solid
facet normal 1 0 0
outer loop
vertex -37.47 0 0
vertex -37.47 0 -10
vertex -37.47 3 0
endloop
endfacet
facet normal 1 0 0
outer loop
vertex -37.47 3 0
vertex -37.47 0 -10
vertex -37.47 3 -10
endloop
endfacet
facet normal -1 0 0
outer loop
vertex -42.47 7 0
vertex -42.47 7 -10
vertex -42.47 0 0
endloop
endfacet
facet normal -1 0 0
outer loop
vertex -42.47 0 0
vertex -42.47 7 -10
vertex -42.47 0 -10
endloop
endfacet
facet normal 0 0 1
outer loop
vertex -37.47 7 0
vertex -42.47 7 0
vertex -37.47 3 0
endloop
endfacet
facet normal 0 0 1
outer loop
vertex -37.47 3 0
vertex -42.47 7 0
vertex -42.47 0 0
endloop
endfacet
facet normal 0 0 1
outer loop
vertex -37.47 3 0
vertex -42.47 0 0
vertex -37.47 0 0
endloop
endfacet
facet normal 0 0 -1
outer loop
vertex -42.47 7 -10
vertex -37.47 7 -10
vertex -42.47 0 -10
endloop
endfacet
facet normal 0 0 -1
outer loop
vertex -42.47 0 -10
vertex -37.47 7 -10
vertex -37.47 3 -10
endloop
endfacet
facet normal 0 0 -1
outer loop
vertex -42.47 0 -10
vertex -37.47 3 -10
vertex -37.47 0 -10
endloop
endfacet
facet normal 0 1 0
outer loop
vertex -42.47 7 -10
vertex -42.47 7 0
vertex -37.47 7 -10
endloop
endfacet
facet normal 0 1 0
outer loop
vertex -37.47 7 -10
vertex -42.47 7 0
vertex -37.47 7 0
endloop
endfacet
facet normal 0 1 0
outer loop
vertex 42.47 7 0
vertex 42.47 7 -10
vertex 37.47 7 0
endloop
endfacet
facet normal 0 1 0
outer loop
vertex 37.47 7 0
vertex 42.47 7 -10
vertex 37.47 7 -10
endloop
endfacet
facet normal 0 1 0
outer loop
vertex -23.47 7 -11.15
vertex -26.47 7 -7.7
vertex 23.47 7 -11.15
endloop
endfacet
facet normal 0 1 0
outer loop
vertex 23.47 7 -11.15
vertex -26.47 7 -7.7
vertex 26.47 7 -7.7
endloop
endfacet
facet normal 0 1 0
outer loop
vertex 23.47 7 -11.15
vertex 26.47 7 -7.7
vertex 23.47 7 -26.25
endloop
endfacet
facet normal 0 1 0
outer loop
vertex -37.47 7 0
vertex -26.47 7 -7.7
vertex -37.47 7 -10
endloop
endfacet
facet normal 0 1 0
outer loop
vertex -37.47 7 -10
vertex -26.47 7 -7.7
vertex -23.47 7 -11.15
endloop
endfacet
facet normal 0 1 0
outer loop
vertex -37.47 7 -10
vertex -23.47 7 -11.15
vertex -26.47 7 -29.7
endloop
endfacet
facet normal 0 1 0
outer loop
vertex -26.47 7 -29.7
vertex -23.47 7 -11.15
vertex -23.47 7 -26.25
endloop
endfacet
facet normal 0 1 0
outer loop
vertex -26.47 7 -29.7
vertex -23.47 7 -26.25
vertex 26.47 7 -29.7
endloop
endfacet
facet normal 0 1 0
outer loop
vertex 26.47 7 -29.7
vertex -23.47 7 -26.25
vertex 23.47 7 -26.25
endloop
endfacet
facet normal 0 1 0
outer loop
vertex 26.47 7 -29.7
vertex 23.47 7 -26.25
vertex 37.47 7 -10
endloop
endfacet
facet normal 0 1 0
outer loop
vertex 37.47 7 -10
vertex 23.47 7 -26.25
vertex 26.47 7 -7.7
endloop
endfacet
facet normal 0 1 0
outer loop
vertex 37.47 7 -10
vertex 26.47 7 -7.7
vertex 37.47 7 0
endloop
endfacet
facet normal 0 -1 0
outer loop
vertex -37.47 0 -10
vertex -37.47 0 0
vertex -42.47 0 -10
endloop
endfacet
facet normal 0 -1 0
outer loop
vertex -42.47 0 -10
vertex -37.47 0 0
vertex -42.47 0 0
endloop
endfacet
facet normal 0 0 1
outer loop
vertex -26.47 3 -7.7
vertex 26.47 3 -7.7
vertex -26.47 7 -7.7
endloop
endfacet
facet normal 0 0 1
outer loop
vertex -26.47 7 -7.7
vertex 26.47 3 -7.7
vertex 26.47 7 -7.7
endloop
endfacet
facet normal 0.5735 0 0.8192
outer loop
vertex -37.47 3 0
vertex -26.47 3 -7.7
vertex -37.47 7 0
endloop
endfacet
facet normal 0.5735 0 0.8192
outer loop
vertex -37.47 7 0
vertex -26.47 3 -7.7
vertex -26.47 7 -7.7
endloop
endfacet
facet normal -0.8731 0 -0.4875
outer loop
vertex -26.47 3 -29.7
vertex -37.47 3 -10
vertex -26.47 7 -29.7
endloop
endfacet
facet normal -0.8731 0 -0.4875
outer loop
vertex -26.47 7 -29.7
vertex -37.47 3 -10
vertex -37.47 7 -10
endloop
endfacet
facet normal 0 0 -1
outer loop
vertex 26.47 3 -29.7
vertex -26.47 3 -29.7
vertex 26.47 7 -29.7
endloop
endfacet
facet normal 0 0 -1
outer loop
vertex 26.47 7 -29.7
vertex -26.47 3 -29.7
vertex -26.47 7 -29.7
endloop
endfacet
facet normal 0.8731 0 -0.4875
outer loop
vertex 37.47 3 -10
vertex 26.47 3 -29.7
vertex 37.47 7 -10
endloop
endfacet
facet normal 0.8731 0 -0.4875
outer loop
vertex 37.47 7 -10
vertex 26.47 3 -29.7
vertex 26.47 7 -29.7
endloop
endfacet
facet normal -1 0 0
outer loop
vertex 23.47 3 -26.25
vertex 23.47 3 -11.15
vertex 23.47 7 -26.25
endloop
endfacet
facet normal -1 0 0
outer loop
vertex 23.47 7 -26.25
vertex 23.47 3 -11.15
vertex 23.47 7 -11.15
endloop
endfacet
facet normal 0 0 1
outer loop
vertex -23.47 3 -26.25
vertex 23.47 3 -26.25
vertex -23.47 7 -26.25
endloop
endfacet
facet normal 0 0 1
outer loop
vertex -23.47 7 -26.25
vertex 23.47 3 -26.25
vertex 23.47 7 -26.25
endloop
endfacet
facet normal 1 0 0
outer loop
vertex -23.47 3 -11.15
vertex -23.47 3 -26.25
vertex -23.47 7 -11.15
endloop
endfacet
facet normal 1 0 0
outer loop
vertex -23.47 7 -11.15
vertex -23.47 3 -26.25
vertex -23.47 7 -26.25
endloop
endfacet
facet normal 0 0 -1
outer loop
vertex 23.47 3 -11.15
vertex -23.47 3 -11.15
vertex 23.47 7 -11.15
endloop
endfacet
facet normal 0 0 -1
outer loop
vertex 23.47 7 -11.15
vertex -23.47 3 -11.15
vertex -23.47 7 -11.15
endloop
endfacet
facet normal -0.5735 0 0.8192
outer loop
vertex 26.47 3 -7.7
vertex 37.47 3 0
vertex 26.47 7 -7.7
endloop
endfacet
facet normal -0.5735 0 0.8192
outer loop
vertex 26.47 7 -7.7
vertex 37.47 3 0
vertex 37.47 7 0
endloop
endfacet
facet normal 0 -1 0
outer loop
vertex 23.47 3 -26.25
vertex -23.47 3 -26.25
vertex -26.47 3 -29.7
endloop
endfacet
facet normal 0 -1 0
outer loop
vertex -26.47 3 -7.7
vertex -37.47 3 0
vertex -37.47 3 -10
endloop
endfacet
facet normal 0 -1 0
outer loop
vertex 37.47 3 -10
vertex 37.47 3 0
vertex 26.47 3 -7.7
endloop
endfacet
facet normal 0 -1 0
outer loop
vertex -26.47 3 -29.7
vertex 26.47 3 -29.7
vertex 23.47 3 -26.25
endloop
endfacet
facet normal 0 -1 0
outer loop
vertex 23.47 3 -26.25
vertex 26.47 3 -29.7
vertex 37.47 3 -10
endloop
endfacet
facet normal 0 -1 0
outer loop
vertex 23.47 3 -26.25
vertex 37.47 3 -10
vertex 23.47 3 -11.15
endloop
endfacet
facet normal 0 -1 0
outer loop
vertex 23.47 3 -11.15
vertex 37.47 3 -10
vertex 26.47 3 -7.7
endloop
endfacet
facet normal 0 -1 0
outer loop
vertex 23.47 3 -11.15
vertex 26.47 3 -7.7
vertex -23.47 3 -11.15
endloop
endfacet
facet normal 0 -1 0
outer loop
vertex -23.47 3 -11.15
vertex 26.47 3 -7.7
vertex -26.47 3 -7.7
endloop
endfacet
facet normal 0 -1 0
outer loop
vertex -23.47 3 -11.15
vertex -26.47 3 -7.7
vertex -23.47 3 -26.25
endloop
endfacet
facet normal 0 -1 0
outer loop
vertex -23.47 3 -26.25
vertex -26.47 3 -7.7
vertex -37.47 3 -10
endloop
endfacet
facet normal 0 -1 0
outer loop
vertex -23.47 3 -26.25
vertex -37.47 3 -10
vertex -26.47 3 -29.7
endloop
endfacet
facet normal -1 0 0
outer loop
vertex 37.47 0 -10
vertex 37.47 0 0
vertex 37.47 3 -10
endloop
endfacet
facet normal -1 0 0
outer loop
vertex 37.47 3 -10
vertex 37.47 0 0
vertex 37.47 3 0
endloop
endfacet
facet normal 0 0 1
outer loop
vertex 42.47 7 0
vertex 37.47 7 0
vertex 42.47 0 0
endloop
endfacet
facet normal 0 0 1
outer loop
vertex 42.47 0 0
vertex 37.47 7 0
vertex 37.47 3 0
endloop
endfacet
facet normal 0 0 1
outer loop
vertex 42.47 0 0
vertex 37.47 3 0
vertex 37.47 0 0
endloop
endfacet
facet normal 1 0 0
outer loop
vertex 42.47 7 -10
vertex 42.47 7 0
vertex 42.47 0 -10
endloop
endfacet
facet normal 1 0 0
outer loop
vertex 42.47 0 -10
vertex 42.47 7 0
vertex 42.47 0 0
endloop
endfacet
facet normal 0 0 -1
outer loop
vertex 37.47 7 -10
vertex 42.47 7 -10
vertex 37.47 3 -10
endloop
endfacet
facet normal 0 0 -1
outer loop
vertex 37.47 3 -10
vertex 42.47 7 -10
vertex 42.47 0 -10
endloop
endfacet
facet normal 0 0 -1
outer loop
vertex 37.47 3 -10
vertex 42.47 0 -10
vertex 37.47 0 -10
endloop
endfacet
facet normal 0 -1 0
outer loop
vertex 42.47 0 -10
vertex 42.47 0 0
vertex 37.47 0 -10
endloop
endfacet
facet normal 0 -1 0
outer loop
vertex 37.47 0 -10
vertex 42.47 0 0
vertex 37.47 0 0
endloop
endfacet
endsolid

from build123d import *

# Parameters (mm, degrees)
SKETCH_1_W        = 5
SKETCH_1_H        = 10
EXTRUDE_1_DEPTH   = 7
EXTRUDE_1_2_DEPTH = 7
EXTRUDE_2_DEPTH   = 4


with BuildPart() as part:
    # Эскиз1 → Бобышка-Вытянуть1 (new body)
    with BuildSketch(Plane(origin=(0, 0, 0), x_dir=(1, 0, 0), z_dir=(0, 1, 0))):
        with Locations((-39.97, 5)):
            Rectangle(SKETCH_1_W, SKETCH_1_H)
    extrude(amount=EXTRUDE_1_DEPTH)



with BuildPart() as body_2:
    # Эскиз1 → Extrude 1 2 (new body)
    with BuildSketch(Plane(origin=(0, 0, 0), x_dir=(1, 0, 0), z_dir=(0, 1, 0))):
        with Locations((39.97, 5)):
            Rectangle(SKETCH_1_W, SKETCH_1_H)
    extrude(amount=EXTRUDE_1_2_DEPTH)


with BuildPart() as part_1:
    add(part.part)

    add(body_2.part)  # Бобышка-Вытянуть2 merges body 2
    # Эскиз2 → Бобышка-Вытянуть2 (add)
    with BuildSketch(Plane(origin=(0, 7, 0), x_dir=(1, 0, 0), z_dir=(0, 1, 0))):
        Polygon((0, 26.25), (0, 29.7), (-26.47, 29.7), (-26.47, 26.25), (-23.47, 26.25), align=None)
        Polygon((-26.47, 26.25), (-26.47, 29.7), (-37.47, 10), (-37.47, 0), (-26.47, 7.7), (-26.47, 11.15), (-23.47, 11.15), (-23.47, 26.25), align=None)
        Polygon((26.47, 26.25), (26.47, 29.7), (0, 29.7), (0, 26.25), (23.47, 26.25), align=None)
        Polygon((23.47, 11.15), (0, 11.15), (0, 7.7), (26.47, 7.7), (26.47, 11.15), align=None)
        Polygon((0, 7.7), (0, 11.15), (-23.47, 11.15), (-26.47, 11.15), (-26.47, 7.7), align=None)
        Polygon((37.47, 10), (26.47, 29.7), (26.47, 26.25), (23.47, 26.25), (23.47, 11.15), (26.47, 11.15), (26.47, 7.7), (37.47, 0), align=None)
    extrude(amount=-EXTRUDE_2_DEPTH)


solid = part_1.part
